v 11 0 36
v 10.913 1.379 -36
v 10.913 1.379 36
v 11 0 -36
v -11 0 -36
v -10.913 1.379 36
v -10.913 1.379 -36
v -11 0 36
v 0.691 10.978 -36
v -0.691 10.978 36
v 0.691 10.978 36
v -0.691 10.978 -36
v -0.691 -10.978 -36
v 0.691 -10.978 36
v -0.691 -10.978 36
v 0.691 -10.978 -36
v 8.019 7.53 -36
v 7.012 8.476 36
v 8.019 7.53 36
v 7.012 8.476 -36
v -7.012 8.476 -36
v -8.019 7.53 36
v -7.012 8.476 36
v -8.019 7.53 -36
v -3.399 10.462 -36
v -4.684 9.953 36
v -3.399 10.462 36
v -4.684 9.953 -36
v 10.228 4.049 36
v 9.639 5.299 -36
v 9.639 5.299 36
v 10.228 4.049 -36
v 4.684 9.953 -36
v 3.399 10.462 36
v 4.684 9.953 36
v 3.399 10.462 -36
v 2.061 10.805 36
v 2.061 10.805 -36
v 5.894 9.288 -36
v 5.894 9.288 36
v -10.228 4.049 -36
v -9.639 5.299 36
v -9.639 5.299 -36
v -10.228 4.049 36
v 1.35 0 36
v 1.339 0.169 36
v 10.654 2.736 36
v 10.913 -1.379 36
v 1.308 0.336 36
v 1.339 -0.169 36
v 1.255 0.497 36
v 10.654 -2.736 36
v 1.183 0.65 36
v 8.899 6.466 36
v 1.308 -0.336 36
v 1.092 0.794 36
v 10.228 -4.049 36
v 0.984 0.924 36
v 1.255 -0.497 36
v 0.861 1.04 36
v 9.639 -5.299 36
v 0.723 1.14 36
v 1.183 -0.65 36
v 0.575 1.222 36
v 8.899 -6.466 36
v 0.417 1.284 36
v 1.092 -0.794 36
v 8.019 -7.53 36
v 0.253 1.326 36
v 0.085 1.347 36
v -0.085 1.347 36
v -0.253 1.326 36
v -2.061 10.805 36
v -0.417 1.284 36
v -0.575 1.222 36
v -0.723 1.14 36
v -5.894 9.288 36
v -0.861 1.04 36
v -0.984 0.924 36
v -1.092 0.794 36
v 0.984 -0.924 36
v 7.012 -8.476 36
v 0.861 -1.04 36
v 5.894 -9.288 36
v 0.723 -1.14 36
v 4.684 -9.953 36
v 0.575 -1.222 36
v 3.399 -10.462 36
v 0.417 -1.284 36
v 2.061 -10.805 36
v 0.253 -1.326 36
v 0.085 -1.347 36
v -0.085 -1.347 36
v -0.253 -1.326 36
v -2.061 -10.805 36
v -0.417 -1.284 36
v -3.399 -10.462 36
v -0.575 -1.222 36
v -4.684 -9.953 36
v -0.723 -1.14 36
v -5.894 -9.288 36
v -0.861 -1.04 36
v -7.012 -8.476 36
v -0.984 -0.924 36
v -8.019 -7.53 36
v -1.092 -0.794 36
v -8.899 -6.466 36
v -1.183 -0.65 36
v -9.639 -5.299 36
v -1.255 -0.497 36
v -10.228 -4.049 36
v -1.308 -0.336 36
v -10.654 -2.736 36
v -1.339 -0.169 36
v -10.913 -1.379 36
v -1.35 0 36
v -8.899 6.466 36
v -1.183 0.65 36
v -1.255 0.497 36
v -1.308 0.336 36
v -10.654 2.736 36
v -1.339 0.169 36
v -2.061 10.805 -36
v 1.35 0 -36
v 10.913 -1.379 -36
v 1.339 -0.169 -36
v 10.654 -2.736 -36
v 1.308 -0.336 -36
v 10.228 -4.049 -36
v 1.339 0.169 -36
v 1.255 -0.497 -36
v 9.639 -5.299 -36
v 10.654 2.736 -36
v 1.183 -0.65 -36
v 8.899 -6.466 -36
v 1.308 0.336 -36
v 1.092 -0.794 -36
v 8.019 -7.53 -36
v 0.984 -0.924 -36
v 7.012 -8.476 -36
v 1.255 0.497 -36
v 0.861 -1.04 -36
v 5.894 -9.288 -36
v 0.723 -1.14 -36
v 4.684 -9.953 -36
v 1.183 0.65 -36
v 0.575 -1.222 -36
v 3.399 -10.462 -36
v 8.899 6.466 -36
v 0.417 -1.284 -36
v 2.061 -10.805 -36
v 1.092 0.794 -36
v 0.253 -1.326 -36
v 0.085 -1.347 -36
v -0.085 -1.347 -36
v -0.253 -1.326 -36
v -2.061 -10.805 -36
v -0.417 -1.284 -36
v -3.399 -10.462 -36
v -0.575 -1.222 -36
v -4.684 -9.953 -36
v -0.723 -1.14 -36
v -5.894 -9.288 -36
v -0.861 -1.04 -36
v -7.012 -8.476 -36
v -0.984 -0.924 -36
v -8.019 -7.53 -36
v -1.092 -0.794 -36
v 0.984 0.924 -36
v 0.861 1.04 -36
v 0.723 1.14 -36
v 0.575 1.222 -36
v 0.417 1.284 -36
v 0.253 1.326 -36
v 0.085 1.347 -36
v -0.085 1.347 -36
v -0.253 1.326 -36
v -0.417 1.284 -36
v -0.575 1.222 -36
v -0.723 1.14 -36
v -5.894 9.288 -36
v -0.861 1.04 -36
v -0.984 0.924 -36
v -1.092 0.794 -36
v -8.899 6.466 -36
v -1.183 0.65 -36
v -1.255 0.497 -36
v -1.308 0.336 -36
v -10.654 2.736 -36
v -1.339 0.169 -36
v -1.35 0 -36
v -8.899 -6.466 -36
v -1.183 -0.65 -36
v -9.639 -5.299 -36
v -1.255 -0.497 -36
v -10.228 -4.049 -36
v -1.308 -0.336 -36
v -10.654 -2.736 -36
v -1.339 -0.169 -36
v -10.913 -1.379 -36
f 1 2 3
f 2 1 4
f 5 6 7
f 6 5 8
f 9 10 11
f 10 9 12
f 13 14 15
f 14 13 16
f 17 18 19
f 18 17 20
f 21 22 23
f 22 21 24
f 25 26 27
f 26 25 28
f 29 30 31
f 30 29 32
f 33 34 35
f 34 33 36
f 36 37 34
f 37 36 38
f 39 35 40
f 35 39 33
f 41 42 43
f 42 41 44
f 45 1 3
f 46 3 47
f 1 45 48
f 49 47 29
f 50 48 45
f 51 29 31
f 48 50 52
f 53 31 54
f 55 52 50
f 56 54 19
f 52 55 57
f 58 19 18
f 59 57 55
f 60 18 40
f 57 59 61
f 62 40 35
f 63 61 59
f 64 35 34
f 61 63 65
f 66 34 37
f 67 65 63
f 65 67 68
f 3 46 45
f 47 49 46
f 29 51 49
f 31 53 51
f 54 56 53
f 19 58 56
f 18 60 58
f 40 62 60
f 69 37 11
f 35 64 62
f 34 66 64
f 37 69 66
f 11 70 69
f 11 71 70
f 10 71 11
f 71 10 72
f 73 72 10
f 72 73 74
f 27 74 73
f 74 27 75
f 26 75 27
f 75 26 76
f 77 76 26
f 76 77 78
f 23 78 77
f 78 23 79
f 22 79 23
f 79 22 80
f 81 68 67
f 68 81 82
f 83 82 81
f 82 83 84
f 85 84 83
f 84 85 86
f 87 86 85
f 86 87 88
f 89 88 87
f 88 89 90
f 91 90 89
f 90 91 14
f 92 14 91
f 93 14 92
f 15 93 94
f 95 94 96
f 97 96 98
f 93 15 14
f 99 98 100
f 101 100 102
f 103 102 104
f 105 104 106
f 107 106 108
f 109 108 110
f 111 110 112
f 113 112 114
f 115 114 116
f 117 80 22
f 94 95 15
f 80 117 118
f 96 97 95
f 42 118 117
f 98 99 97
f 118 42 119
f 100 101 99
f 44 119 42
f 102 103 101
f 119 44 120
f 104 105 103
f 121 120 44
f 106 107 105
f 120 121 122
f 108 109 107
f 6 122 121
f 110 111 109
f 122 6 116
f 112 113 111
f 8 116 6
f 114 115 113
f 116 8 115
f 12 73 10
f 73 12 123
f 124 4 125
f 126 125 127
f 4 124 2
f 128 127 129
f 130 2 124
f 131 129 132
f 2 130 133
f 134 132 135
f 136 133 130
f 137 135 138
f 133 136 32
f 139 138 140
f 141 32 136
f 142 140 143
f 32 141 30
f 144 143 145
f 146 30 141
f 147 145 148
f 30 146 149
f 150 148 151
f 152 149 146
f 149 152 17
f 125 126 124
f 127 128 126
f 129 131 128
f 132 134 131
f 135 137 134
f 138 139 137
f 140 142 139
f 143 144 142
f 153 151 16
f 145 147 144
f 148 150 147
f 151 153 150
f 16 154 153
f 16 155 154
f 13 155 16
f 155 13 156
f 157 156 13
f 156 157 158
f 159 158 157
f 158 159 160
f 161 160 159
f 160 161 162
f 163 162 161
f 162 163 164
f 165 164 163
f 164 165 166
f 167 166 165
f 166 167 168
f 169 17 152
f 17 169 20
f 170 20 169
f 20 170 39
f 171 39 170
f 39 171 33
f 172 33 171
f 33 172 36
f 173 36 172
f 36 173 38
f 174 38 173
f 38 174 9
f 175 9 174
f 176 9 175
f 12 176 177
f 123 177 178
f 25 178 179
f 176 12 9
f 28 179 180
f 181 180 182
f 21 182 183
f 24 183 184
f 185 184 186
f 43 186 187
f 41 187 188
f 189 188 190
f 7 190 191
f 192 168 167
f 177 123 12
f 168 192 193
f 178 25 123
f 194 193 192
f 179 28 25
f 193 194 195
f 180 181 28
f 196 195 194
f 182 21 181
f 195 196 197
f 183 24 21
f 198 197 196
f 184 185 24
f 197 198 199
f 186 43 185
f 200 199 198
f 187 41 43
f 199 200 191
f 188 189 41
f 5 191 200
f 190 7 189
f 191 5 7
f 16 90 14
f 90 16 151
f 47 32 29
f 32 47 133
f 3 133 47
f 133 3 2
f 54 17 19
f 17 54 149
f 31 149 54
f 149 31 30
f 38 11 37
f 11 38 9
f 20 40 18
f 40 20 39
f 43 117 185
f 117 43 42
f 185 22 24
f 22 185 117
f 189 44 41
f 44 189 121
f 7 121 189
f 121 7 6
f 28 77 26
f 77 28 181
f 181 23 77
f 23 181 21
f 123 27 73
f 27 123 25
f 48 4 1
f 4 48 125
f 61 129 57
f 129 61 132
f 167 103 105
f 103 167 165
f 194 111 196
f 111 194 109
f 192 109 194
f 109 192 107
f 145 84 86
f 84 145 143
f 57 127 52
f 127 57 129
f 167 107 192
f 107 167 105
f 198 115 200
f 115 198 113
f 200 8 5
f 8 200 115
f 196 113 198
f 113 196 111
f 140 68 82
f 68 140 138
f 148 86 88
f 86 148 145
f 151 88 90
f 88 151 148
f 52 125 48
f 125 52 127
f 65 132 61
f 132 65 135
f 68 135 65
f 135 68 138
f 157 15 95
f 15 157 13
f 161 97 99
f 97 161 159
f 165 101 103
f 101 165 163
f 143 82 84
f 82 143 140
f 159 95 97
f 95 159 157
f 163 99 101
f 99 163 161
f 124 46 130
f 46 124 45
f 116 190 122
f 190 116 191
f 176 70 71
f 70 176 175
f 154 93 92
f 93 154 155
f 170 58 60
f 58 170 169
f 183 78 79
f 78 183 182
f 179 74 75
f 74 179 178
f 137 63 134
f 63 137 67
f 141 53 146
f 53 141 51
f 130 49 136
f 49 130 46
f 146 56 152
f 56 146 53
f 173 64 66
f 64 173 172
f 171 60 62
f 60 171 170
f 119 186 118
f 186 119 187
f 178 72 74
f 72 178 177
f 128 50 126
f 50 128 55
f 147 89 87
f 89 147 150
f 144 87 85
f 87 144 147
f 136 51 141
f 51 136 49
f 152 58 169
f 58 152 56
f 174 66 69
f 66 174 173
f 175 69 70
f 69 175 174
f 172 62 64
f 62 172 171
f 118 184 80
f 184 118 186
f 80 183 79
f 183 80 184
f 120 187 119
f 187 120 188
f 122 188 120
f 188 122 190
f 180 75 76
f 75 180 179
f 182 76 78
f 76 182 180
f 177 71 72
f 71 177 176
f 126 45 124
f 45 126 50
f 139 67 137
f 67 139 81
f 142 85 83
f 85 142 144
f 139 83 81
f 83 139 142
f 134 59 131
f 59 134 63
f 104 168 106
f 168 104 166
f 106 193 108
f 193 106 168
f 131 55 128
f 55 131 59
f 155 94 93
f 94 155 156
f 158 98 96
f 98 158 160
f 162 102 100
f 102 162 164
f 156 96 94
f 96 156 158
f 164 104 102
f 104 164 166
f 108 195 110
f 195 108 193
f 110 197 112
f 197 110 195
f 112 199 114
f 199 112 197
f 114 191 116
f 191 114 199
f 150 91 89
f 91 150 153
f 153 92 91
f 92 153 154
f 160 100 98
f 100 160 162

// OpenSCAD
$fn = 50;


difference() {
	union() {
		translate(v = [0, 0, -36.0000000000]) {
			cylinder(h = 72, r = 11.0000000000);
		}
	}
	union() {
		translate(v = [0, 0, -100.0000000000]) {
			cylinder(h = 200, r = 1.3500000000);
		}
	}
}
